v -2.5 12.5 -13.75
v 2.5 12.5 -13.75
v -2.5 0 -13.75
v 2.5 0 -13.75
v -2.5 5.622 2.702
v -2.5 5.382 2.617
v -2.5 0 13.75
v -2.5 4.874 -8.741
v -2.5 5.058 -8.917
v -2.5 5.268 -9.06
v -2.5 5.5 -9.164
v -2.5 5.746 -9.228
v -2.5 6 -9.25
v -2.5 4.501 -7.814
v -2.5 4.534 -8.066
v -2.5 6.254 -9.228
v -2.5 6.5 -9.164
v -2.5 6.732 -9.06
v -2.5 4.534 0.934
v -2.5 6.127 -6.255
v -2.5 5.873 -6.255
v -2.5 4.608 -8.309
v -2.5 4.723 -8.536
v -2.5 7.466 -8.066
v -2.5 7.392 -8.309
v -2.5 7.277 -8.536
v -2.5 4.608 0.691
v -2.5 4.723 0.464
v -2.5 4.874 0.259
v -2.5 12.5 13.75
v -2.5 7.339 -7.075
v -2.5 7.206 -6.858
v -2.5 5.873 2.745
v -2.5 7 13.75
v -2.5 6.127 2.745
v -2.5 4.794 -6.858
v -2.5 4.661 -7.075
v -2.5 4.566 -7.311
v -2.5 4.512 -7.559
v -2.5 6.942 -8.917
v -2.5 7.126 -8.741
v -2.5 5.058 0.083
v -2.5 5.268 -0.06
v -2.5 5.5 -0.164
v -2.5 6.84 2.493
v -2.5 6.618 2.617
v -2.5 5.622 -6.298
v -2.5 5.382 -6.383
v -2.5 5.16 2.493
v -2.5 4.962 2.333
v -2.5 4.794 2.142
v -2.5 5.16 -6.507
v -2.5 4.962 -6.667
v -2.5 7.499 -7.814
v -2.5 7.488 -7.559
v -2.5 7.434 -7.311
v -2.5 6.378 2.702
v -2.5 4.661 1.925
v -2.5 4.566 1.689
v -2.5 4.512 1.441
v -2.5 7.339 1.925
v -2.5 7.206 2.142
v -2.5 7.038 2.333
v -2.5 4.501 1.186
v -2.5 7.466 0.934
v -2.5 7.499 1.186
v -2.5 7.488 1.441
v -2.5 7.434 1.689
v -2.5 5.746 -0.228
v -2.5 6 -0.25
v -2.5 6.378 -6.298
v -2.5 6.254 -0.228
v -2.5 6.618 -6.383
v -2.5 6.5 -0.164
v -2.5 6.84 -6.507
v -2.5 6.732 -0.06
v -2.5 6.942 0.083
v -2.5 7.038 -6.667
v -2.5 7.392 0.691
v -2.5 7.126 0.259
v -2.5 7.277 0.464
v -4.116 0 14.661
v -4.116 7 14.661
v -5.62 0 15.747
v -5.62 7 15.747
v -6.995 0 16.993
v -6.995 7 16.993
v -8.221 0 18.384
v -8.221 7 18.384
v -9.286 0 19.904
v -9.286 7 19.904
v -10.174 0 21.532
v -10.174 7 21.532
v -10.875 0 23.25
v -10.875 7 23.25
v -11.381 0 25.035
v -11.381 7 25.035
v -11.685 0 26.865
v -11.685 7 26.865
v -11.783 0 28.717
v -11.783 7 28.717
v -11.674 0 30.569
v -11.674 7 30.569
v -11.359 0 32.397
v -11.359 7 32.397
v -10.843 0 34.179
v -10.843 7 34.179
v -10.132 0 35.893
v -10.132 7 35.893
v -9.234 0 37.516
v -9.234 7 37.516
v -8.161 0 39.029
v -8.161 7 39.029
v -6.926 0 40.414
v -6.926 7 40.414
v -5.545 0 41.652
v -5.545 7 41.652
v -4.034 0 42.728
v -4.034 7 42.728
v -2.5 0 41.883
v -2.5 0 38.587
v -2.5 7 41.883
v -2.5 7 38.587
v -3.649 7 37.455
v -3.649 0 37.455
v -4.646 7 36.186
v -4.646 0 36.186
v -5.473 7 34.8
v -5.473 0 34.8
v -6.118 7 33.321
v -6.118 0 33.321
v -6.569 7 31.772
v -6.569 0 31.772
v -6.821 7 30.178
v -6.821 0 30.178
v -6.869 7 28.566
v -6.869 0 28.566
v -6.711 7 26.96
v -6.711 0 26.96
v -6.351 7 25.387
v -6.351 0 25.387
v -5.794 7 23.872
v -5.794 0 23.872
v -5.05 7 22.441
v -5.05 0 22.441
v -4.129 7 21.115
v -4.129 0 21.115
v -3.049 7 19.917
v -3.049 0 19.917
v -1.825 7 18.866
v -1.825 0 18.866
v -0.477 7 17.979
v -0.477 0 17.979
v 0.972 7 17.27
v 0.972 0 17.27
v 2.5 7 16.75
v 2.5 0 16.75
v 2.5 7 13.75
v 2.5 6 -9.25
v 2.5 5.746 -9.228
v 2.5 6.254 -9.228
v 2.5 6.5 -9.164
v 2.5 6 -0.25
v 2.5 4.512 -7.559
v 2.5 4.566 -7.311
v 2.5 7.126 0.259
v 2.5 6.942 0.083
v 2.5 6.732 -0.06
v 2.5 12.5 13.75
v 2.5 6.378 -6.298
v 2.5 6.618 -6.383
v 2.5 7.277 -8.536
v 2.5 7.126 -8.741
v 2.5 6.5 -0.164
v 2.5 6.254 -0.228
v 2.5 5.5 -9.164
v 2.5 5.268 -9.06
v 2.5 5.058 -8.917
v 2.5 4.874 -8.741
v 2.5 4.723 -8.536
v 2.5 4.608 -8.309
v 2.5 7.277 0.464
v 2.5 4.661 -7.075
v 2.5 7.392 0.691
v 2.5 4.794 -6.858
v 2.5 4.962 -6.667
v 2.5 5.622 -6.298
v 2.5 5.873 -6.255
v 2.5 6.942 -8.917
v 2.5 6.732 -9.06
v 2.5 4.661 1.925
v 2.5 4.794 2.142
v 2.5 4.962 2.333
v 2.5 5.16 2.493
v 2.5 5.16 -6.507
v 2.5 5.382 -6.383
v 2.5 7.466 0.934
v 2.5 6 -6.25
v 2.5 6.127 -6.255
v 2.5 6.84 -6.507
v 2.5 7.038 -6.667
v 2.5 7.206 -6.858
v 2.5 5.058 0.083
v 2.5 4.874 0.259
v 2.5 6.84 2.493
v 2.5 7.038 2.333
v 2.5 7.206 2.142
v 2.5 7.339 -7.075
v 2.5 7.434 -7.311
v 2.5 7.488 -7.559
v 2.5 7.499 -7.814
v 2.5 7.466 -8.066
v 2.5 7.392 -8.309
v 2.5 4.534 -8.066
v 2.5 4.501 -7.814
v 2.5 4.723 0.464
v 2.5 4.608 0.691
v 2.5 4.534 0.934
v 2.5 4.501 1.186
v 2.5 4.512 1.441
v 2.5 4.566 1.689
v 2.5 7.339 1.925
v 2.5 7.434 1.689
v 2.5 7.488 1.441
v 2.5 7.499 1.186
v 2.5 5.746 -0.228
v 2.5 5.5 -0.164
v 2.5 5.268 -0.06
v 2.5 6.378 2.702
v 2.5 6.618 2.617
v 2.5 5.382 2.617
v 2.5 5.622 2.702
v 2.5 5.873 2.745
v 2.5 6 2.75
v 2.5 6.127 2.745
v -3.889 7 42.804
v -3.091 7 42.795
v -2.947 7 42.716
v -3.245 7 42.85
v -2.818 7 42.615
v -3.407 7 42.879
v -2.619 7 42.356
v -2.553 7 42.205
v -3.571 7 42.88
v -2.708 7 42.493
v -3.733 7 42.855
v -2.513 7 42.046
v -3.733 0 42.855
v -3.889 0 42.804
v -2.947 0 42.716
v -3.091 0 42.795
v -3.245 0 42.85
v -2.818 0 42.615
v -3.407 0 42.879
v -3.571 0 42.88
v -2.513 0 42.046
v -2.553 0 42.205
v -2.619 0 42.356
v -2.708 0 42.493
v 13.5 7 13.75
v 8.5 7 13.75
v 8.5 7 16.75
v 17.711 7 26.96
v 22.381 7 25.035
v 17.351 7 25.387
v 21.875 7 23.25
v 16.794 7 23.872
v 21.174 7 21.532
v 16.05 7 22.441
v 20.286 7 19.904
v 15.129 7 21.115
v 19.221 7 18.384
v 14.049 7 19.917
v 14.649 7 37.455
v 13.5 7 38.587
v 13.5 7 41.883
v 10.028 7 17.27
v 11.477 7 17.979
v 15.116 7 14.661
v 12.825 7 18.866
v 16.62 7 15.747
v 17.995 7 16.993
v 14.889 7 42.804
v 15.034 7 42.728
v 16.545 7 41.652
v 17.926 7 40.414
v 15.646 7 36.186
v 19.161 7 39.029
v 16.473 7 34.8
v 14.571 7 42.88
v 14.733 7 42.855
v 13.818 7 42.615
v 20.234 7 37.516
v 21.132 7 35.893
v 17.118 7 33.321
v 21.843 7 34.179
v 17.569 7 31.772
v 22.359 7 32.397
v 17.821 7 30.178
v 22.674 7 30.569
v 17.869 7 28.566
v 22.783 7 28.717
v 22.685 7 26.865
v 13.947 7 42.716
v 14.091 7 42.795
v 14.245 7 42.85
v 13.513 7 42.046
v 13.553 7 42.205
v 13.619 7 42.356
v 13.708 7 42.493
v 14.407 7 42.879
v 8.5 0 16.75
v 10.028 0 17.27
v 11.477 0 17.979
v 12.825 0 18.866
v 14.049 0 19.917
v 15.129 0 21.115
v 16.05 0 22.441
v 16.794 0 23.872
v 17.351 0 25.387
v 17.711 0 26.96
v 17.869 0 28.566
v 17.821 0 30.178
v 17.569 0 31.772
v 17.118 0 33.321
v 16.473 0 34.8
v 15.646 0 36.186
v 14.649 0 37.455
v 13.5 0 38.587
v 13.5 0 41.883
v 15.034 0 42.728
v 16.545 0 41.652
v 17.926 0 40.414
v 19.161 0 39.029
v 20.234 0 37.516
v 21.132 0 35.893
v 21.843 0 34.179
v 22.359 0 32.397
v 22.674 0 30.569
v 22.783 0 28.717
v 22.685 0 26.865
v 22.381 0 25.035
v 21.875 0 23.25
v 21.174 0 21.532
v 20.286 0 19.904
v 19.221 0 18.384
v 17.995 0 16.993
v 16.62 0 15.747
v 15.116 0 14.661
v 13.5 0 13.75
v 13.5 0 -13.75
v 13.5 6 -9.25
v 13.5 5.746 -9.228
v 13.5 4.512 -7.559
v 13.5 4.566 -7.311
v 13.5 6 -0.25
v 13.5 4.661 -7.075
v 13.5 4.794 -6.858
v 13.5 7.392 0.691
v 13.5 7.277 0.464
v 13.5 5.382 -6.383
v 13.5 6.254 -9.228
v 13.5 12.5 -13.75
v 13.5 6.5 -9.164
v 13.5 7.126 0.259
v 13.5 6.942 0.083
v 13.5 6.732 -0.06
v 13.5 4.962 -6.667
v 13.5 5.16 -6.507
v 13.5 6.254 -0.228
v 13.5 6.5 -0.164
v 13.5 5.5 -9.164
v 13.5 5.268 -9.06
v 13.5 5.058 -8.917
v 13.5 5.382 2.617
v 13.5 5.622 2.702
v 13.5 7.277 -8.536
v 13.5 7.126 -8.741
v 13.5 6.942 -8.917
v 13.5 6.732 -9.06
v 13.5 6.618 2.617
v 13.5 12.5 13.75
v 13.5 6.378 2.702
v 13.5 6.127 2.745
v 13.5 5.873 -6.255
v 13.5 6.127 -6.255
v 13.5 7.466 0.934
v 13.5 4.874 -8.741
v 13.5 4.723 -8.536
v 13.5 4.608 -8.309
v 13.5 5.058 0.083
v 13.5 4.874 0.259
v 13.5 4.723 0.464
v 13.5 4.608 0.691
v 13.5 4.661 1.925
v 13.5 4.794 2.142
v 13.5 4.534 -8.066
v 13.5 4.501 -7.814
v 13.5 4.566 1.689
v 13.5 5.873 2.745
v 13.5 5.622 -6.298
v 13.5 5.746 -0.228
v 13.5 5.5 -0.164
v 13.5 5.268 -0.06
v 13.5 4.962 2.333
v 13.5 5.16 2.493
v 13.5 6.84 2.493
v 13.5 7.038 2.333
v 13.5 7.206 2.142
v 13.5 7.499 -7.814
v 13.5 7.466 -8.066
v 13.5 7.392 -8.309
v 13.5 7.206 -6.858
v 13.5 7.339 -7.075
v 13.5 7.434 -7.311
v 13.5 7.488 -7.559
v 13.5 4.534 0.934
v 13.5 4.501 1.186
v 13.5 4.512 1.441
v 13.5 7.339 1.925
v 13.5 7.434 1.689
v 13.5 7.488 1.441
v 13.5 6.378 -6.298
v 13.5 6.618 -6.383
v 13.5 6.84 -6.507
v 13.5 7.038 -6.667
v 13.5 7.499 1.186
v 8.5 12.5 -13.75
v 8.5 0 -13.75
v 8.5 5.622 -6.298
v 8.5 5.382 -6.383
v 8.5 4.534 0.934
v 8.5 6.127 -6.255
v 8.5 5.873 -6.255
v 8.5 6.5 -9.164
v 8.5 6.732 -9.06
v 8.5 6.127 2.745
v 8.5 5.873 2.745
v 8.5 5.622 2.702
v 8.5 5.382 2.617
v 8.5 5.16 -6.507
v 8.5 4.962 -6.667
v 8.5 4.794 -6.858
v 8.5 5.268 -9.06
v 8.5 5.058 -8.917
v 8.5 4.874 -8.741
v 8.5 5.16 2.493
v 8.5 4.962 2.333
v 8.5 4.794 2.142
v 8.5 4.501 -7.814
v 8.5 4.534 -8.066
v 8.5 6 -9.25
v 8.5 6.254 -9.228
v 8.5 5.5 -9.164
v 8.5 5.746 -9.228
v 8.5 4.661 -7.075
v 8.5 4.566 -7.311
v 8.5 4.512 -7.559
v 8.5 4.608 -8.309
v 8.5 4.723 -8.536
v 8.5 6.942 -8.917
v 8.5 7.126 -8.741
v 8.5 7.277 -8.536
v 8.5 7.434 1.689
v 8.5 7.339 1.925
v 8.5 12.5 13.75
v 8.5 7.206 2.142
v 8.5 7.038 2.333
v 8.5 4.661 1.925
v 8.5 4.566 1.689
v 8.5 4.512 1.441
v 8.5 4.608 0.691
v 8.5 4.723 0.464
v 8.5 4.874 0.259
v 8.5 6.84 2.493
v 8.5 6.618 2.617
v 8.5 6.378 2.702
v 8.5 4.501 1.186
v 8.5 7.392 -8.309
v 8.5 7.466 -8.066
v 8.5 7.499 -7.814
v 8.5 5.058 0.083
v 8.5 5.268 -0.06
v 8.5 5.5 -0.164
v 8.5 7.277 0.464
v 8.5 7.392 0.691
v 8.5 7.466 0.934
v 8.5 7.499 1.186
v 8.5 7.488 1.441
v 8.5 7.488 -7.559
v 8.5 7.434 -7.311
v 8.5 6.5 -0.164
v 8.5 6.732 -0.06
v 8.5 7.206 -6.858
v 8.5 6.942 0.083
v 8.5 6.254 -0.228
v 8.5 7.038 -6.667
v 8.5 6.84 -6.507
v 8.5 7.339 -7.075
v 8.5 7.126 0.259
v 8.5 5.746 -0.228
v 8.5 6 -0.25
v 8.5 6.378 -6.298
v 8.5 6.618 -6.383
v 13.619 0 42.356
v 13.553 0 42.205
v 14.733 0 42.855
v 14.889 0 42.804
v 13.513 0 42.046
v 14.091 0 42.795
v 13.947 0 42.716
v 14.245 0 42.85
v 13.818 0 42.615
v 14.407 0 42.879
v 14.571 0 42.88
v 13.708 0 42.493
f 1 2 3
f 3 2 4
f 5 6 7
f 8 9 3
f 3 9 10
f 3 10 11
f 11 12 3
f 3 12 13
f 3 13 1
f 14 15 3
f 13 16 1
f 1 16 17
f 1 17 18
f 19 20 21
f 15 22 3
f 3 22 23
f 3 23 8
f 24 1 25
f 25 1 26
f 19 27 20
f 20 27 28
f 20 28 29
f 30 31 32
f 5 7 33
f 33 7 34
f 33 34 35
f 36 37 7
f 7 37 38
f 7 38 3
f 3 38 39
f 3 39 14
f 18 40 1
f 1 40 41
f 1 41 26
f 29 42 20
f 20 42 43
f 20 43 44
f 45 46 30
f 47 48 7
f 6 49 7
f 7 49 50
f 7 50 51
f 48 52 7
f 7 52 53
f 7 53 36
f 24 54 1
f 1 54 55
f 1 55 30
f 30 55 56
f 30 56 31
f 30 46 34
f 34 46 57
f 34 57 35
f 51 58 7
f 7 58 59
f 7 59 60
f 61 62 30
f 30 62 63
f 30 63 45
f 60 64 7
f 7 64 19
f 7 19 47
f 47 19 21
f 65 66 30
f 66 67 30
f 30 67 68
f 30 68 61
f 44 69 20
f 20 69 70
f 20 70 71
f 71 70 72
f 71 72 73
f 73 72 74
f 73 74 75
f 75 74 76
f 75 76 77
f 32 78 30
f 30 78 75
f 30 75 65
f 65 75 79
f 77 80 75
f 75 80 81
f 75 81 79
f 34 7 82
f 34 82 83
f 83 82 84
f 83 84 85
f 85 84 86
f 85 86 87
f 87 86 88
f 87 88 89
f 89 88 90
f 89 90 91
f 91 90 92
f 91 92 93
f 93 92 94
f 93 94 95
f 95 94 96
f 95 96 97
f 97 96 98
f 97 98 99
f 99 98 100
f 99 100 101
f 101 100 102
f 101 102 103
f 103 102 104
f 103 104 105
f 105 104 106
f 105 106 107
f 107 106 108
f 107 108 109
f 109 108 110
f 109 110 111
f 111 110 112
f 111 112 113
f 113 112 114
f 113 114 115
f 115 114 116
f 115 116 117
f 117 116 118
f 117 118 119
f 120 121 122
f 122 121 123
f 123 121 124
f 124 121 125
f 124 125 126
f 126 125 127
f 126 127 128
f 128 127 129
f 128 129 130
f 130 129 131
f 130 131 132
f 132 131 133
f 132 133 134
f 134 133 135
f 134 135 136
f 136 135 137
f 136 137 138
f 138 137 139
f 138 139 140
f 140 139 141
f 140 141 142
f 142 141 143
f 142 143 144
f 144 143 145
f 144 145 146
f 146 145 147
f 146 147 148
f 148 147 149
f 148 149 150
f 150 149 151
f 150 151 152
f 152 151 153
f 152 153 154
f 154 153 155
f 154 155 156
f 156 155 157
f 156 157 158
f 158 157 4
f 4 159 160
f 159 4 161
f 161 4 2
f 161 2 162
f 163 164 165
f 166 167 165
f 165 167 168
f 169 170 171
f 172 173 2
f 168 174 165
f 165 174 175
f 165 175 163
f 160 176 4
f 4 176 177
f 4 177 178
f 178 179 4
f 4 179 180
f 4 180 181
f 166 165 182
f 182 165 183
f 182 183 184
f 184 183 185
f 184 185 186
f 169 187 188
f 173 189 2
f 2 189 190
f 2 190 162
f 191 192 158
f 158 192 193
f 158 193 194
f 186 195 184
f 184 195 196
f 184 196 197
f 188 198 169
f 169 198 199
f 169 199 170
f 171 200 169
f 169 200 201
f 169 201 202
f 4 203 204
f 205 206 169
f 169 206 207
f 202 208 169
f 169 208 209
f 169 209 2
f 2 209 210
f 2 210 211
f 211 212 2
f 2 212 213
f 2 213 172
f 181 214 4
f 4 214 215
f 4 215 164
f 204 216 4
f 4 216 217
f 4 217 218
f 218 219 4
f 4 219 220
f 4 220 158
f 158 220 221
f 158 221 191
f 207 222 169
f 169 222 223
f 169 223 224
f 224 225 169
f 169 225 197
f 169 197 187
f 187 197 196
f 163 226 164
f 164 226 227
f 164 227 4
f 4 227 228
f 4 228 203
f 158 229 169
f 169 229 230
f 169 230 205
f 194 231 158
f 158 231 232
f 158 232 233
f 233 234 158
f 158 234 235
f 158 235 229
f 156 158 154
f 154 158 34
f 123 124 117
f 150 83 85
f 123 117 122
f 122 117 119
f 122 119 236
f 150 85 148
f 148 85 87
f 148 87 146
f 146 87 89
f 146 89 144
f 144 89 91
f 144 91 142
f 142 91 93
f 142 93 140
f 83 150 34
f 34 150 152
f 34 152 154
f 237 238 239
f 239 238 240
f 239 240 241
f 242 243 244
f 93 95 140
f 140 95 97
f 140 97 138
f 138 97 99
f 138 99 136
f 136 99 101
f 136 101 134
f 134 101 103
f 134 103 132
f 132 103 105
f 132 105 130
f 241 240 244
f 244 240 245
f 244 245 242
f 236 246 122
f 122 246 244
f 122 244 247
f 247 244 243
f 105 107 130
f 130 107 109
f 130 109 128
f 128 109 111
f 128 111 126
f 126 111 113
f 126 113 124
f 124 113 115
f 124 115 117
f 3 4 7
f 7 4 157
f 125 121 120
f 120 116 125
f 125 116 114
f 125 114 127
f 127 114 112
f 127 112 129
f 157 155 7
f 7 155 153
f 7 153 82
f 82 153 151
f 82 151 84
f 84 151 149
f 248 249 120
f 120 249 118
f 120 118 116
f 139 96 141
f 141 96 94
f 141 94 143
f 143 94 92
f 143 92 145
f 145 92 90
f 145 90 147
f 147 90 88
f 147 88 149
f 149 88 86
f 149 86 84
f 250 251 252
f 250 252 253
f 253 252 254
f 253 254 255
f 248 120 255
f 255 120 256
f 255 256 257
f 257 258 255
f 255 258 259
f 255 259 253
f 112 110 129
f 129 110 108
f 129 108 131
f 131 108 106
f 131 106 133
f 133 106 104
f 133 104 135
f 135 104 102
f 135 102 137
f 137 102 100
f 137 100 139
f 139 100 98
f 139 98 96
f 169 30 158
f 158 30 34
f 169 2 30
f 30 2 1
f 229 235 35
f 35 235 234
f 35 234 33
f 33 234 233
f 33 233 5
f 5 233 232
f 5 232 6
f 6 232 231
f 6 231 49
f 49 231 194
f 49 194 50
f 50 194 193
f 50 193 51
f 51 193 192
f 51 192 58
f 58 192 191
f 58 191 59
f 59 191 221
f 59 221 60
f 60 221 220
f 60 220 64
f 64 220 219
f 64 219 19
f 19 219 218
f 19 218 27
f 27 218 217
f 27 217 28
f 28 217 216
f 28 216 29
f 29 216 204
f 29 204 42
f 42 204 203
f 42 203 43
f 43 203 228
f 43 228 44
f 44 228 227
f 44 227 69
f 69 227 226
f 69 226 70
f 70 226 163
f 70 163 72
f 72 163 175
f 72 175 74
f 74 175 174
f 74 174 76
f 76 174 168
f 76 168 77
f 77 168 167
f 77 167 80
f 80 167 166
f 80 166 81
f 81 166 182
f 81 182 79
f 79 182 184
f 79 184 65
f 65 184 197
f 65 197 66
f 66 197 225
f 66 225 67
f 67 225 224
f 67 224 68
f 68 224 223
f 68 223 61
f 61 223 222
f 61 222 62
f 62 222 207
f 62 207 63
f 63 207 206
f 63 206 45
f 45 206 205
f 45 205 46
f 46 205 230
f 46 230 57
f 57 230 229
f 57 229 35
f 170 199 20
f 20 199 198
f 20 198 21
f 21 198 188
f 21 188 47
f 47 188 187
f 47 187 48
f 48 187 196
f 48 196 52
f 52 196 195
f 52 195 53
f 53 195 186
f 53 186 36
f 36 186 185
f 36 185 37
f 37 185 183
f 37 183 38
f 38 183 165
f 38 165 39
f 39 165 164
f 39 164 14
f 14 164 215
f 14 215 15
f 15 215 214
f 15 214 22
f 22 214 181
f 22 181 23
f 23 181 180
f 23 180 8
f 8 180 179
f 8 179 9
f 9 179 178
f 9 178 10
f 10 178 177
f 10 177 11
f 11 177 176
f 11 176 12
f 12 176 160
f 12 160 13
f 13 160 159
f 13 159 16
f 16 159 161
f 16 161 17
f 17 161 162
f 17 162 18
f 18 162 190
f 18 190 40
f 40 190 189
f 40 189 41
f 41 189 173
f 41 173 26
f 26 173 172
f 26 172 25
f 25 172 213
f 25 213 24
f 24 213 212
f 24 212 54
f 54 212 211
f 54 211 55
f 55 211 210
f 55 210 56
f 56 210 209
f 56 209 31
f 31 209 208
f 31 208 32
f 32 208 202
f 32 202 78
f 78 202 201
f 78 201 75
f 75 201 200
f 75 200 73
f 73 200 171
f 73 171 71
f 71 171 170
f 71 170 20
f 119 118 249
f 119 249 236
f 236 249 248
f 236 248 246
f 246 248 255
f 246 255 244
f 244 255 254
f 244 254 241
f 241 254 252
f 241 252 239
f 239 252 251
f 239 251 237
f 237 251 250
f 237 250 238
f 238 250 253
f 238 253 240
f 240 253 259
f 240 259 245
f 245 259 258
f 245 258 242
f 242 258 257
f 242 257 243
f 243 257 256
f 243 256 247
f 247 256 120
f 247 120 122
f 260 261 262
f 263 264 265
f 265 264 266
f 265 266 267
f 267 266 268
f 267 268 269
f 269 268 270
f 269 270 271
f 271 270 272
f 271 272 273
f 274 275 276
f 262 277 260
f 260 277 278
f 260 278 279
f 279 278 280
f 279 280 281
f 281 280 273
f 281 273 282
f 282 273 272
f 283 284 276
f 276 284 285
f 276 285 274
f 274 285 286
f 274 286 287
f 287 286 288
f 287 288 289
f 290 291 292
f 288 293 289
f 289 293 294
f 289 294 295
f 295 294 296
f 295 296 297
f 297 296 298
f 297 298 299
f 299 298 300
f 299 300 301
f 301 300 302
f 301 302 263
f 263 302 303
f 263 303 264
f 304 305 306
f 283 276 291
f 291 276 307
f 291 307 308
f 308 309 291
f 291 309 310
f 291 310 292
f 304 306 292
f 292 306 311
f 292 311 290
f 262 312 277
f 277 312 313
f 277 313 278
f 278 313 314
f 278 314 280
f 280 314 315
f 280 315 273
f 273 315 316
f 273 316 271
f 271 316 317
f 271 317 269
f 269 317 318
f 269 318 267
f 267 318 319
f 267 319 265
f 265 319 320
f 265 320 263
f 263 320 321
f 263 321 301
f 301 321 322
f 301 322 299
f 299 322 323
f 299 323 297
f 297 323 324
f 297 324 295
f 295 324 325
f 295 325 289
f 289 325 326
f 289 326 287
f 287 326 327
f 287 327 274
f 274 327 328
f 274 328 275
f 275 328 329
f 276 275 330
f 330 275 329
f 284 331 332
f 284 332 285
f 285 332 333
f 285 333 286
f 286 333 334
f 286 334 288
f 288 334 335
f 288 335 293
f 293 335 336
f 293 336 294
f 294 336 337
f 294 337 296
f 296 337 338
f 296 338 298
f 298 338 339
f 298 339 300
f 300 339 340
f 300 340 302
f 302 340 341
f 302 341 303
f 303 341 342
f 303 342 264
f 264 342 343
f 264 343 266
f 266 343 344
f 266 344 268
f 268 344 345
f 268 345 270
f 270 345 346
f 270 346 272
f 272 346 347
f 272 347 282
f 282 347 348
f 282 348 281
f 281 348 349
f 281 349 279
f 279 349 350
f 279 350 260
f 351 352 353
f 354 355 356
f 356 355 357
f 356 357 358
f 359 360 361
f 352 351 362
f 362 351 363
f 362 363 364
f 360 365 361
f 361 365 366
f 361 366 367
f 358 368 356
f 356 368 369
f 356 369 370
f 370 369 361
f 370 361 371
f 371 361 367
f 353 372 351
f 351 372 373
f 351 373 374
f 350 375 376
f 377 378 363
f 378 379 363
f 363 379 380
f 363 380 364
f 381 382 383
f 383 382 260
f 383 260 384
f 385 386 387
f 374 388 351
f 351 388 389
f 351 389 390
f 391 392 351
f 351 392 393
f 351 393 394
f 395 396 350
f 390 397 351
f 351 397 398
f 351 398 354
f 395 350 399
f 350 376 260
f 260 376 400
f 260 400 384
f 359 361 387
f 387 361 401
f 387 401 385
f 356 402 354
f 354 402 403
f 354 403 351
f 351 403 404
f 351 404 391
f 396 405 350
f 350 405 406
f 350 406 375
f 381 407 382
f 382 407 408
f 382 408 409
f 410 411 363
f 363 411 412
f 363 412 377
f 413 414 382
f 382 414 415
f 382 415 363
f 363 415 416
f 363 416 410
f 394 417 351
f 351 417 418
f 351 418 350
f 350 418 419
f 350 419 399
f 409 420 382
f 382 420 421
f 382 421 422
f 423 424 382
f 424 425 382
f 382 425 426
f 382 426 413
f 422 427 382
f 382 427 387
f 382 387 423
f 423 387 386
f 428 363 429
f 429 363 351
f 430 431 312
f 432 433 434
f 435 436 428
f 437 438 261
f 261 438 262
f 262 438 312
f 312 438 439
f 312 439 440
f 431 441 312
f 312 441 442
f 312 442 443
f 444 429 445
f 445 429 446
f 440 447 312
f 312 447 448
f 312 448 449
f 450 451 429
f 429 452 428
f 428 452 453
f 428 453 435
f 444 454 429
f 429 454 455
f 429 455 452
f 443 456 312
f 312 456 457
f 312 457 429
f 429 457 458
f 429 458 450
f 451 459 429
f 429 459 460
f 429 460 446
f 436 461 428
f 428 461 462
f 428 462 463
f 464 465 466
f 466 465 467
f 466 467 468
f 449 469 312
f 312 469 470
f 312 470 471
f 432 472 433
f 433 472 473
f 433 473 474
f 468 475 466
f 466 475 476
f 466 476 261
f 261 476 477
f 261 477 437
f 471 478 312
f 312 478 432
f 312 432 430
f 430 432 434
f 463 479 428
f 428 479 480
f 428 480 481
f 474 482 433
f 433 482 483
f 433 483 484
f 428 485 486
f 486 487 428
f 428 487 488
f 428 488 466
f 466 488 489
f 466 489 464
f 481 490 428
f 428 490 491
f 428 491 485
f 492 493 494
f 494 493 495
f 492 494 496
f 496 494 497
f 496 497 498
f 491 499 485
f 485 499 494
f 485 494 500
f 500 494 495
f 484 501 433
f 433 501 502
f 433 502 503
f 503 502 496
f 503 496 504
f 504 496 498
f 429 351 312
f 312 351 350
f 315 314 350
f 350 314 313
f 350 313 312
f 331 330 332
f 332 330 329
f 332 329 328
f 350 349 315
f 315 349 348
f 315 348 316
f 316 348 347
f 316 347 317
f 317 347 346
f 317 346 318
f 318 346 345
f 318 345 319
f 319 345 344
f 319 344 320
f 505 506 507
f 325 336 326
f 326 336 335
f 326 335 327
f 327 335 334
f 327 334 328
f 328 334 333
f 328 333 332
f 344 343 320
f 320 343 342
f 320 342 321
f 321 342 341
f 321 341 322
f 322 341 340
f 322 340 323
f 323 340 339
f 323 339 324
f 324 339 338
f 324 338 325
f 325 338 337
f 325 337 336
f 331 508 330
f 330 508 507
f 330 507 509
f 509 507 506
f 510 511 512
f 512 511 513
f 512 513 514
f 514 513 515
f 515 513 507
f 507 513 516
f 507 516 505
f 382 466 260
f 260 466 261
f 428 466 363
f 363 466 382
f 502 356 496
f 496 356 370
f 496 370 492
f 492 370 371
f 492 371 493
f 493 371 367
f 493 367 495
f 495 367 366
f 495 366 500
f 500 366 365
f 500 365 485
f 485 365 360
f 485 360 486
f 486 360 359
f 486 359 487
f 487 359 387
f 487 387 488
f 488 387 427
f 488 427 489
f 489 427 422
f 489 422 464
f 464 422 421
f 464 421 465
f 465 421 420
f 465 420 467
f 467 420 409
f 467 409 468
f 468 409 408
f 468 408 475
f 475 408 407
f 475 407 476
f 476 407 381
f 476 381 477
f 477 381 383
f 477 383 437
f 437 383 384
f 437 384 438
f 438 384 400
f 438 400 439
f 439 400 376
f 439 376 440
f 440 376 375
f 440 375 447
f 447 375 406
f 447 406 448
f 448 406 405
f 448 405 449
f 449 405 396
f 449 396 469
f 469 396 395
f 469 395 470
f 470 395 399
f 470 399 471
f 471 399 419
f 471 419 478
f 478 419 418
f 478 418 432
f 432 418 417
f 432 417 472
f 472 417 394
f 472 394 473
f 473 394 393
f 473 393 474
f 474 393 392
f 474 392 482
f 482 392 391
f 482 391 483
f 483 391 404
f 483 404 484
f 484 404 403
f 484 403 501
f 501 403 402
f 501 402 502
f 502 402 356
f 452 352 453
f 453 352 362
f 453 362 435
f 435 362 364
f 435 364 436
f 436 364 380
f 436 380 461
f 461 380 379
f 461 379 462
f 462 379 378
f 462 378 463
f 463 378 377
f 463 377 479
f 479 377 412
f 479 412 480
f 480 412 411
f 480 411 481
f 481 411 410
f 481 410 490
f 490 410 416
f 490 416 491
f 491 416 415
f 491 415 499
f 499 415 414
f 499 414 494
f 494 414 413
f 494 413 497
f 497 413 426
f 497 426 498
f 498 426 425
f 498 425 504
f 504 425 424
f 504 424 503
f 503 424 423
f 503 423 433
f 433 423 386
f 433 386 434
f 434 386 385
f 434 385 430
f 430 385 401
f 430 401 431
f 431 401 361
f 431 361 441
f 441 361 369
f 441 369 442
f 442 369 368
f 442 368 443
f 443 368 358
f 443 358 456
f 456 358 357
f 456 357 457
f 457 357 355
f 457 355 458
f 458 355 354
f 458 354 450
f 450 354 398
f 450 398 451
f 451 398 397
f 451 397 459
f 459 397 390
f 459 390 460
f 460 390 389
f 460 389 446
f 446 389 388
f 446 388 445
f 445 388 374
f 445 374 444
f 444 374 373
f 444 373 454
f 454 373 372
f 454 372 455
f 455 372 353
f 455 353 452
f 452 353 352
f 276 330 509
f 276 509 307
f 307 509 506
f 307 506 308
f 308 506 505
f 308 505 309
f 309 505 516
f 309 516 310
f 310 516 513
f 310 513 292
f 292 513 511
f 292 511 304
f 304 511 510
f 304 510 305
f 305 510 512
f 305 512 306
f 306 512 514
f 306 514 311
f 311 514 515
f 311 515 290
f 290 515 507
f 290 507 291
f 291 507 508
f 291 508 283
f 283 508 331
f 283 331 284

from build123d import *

# Parameters (mm, degrees)
SALIENTE_EXTRUIR1_DEPTH   = 7
SALIENTE_EXTRUIR1_2_DEPTH = 7
CROQUIS2_W                = 5
CROQUIS2_H                = 27.5
SALIENTE_EXTRUIR2_DEPTH   = 5.5
CORTAR_EXTRUIR1_REACH     = 53.917
CROQUIS3_R                = 1.5
REDONDEO1_R               = 1
REDONDEO2_R               = 1


with BuildPart() as part:
    # Croquis1 → Saliente-Extruir1 (new body)
    with BuildSketch(Plane(origin=(0, 0, 0), x_dir=(1, 0, 0), z_dir=(0, 1, 0))):
        with BuildLine():
            Line((2.5, -13.75), (2.5, -16.75))
            ThreePointArc((2.5, -16.75), (-6.555871294, -26.167614472), (-2.5, -38.587363876))
            Line((-2.5, -38.587363876), (-2.5, -43.587363876))
            ThreePointArc((-2.5, -43.587363876), (-11.782880045, -28.668681938), (-2.5, -13.75))
            Line((-2.5, -13.75), (-2.5, 13.75))
            Line((-2.5, 13.75), (2.5, 13.75))
            Line((2.5, 13.75), (2.5, -13.75))
        make_face()
    extrude(amount=SALIENTE_EXTRUIR1_DEPTH)



with BuildPart() as body_2:
    # Croquis1 → Saliente-Extruir1 2 (new body)
    with BuildSketch(Plane(origin=(0, 0, 0), x_dir=(1, 0, 0), z_dir=(0, 1, 0))):
        with BuildLine():
            Line((13.5, -38.587363876), (13.5, -43.587363876))
            ThreePointArc((13.5, -43.587363876), (22.782880045, -28.668681938), (13.5, -13.75))
            Line((13.5, -13.75), (13.5, 13.75))
            Line((13.5, 13.75), (8.5, 13.75))
            Line((8.5, 13.75), (8.5, -13.75))
            Line((8.5, -13.75), (8.5, -16.75))
            ThreePointArc((8.5, -16.75), (17.555871294, -26.167614472), (13.5, -38.587363876))
        make_face()
    extrude(amount=SALIENTE_EXTRUIR1_2_DEPTH)


with BuildPart() as part_1:
    add(part.part)

    add(body_2.part)  # Saliente-Extruir2 merges body 2
    # Croquis2 → Saliente-Extruir2 (add)
    with BuildSketch(Plane(origin=(0, 7, 0), x_dir=(1, 0, 0), z_dir=(0, 1, 0))):
        Rectangle(CROQUIS2_W, CROQUIS2_H)
        with Locations((11, 0)):
            Rectangle(CROQUIS2_W, CROQUIS2_H)
    extrude(amount=SALIENTE_EXTRUIR2_DEPTH)

    # Cortar-Extruir1: up to this face of the body (flat: up to its plane)
    cortar_extruir1_end = Plane(part_1.part.faces().sort_by_distance((-2.5, 6.25, 0))[0])
    # Croquis3 → Cortar-Extruir1 (cut, up to the picked face)
    with BuildSketch(Plane(origin=(13.5, 0, 0), x_dir=(0, 0, -1), z_dir=(1, 0, 0)), mode=Mode.PRIVATE) as cortar_extruir1_sk1:
        with Locations((7.75, 6)):
            Circle(CROQUIS3_R)
    cortar_extruir1_tool1 = split(extrude(cortar_extruir1_sk1.sketch, amount=-CORTAR_EXTRUIR1_REACH, mode=Mode.PRIVATE), bisect_by=cortar_extruir1_end, keep=Keep.BOTH, mode=Mode.PRIVATE)
    # Croquis3 → Cortar-Extruir1 (cut, up to the picked face)
    with BuildSketch(Plane(origin=(13.5, 0, 0), x_dir=(0, 0, -1), z_dir=(1, 0, 0)), mode=Mode.PRIVATE) as cortar_extruir1_sk2:
        with Locations((-1.25, 6)):
            Circle(CROQUIS3_R)
    cortar_extruir1_tool2 = split(extrude(cortar_extruir1_sk2.sketch, amount=-CORTAR_EXTRUIR1_REACH, mode=Mode.PRIVATE), bisect_by=cortar_extruir1_end, keep=Keep.BOTH, mode=Mode.PRIVATE)
    add(cortar_extruir1_tool1.solids().sort_by(Axis((13.5, 6, -7.75), (-1, 0, 0)))[0], mode=Mode.SUBTRACT)
    add(cortar_extruir1_tool2.solids().sort_by(Axis((13.5, 6, 1.25), (-1, 0, 0)))[0], mode=Mode.SUBTRACT)

    # Redondeo1
    redondeo1_edges = [part_1.edges().sort_by_distance(p)[0] for p in [
        (-2.5, 3.5, 43.587363876),
    ]]
    fillet(redondeo1_edges, radius=REDONDEO1_R)

    # Redondeo2
    redondeo2_edges = [part_1.edges().sort_by_distance(p)[0] for p in [
        (13.5, 3.5, 43.587363876),
    ]]
    fillet(redondeo2_edges, radius=REDONDEO2_R)


solid = part_1.part
